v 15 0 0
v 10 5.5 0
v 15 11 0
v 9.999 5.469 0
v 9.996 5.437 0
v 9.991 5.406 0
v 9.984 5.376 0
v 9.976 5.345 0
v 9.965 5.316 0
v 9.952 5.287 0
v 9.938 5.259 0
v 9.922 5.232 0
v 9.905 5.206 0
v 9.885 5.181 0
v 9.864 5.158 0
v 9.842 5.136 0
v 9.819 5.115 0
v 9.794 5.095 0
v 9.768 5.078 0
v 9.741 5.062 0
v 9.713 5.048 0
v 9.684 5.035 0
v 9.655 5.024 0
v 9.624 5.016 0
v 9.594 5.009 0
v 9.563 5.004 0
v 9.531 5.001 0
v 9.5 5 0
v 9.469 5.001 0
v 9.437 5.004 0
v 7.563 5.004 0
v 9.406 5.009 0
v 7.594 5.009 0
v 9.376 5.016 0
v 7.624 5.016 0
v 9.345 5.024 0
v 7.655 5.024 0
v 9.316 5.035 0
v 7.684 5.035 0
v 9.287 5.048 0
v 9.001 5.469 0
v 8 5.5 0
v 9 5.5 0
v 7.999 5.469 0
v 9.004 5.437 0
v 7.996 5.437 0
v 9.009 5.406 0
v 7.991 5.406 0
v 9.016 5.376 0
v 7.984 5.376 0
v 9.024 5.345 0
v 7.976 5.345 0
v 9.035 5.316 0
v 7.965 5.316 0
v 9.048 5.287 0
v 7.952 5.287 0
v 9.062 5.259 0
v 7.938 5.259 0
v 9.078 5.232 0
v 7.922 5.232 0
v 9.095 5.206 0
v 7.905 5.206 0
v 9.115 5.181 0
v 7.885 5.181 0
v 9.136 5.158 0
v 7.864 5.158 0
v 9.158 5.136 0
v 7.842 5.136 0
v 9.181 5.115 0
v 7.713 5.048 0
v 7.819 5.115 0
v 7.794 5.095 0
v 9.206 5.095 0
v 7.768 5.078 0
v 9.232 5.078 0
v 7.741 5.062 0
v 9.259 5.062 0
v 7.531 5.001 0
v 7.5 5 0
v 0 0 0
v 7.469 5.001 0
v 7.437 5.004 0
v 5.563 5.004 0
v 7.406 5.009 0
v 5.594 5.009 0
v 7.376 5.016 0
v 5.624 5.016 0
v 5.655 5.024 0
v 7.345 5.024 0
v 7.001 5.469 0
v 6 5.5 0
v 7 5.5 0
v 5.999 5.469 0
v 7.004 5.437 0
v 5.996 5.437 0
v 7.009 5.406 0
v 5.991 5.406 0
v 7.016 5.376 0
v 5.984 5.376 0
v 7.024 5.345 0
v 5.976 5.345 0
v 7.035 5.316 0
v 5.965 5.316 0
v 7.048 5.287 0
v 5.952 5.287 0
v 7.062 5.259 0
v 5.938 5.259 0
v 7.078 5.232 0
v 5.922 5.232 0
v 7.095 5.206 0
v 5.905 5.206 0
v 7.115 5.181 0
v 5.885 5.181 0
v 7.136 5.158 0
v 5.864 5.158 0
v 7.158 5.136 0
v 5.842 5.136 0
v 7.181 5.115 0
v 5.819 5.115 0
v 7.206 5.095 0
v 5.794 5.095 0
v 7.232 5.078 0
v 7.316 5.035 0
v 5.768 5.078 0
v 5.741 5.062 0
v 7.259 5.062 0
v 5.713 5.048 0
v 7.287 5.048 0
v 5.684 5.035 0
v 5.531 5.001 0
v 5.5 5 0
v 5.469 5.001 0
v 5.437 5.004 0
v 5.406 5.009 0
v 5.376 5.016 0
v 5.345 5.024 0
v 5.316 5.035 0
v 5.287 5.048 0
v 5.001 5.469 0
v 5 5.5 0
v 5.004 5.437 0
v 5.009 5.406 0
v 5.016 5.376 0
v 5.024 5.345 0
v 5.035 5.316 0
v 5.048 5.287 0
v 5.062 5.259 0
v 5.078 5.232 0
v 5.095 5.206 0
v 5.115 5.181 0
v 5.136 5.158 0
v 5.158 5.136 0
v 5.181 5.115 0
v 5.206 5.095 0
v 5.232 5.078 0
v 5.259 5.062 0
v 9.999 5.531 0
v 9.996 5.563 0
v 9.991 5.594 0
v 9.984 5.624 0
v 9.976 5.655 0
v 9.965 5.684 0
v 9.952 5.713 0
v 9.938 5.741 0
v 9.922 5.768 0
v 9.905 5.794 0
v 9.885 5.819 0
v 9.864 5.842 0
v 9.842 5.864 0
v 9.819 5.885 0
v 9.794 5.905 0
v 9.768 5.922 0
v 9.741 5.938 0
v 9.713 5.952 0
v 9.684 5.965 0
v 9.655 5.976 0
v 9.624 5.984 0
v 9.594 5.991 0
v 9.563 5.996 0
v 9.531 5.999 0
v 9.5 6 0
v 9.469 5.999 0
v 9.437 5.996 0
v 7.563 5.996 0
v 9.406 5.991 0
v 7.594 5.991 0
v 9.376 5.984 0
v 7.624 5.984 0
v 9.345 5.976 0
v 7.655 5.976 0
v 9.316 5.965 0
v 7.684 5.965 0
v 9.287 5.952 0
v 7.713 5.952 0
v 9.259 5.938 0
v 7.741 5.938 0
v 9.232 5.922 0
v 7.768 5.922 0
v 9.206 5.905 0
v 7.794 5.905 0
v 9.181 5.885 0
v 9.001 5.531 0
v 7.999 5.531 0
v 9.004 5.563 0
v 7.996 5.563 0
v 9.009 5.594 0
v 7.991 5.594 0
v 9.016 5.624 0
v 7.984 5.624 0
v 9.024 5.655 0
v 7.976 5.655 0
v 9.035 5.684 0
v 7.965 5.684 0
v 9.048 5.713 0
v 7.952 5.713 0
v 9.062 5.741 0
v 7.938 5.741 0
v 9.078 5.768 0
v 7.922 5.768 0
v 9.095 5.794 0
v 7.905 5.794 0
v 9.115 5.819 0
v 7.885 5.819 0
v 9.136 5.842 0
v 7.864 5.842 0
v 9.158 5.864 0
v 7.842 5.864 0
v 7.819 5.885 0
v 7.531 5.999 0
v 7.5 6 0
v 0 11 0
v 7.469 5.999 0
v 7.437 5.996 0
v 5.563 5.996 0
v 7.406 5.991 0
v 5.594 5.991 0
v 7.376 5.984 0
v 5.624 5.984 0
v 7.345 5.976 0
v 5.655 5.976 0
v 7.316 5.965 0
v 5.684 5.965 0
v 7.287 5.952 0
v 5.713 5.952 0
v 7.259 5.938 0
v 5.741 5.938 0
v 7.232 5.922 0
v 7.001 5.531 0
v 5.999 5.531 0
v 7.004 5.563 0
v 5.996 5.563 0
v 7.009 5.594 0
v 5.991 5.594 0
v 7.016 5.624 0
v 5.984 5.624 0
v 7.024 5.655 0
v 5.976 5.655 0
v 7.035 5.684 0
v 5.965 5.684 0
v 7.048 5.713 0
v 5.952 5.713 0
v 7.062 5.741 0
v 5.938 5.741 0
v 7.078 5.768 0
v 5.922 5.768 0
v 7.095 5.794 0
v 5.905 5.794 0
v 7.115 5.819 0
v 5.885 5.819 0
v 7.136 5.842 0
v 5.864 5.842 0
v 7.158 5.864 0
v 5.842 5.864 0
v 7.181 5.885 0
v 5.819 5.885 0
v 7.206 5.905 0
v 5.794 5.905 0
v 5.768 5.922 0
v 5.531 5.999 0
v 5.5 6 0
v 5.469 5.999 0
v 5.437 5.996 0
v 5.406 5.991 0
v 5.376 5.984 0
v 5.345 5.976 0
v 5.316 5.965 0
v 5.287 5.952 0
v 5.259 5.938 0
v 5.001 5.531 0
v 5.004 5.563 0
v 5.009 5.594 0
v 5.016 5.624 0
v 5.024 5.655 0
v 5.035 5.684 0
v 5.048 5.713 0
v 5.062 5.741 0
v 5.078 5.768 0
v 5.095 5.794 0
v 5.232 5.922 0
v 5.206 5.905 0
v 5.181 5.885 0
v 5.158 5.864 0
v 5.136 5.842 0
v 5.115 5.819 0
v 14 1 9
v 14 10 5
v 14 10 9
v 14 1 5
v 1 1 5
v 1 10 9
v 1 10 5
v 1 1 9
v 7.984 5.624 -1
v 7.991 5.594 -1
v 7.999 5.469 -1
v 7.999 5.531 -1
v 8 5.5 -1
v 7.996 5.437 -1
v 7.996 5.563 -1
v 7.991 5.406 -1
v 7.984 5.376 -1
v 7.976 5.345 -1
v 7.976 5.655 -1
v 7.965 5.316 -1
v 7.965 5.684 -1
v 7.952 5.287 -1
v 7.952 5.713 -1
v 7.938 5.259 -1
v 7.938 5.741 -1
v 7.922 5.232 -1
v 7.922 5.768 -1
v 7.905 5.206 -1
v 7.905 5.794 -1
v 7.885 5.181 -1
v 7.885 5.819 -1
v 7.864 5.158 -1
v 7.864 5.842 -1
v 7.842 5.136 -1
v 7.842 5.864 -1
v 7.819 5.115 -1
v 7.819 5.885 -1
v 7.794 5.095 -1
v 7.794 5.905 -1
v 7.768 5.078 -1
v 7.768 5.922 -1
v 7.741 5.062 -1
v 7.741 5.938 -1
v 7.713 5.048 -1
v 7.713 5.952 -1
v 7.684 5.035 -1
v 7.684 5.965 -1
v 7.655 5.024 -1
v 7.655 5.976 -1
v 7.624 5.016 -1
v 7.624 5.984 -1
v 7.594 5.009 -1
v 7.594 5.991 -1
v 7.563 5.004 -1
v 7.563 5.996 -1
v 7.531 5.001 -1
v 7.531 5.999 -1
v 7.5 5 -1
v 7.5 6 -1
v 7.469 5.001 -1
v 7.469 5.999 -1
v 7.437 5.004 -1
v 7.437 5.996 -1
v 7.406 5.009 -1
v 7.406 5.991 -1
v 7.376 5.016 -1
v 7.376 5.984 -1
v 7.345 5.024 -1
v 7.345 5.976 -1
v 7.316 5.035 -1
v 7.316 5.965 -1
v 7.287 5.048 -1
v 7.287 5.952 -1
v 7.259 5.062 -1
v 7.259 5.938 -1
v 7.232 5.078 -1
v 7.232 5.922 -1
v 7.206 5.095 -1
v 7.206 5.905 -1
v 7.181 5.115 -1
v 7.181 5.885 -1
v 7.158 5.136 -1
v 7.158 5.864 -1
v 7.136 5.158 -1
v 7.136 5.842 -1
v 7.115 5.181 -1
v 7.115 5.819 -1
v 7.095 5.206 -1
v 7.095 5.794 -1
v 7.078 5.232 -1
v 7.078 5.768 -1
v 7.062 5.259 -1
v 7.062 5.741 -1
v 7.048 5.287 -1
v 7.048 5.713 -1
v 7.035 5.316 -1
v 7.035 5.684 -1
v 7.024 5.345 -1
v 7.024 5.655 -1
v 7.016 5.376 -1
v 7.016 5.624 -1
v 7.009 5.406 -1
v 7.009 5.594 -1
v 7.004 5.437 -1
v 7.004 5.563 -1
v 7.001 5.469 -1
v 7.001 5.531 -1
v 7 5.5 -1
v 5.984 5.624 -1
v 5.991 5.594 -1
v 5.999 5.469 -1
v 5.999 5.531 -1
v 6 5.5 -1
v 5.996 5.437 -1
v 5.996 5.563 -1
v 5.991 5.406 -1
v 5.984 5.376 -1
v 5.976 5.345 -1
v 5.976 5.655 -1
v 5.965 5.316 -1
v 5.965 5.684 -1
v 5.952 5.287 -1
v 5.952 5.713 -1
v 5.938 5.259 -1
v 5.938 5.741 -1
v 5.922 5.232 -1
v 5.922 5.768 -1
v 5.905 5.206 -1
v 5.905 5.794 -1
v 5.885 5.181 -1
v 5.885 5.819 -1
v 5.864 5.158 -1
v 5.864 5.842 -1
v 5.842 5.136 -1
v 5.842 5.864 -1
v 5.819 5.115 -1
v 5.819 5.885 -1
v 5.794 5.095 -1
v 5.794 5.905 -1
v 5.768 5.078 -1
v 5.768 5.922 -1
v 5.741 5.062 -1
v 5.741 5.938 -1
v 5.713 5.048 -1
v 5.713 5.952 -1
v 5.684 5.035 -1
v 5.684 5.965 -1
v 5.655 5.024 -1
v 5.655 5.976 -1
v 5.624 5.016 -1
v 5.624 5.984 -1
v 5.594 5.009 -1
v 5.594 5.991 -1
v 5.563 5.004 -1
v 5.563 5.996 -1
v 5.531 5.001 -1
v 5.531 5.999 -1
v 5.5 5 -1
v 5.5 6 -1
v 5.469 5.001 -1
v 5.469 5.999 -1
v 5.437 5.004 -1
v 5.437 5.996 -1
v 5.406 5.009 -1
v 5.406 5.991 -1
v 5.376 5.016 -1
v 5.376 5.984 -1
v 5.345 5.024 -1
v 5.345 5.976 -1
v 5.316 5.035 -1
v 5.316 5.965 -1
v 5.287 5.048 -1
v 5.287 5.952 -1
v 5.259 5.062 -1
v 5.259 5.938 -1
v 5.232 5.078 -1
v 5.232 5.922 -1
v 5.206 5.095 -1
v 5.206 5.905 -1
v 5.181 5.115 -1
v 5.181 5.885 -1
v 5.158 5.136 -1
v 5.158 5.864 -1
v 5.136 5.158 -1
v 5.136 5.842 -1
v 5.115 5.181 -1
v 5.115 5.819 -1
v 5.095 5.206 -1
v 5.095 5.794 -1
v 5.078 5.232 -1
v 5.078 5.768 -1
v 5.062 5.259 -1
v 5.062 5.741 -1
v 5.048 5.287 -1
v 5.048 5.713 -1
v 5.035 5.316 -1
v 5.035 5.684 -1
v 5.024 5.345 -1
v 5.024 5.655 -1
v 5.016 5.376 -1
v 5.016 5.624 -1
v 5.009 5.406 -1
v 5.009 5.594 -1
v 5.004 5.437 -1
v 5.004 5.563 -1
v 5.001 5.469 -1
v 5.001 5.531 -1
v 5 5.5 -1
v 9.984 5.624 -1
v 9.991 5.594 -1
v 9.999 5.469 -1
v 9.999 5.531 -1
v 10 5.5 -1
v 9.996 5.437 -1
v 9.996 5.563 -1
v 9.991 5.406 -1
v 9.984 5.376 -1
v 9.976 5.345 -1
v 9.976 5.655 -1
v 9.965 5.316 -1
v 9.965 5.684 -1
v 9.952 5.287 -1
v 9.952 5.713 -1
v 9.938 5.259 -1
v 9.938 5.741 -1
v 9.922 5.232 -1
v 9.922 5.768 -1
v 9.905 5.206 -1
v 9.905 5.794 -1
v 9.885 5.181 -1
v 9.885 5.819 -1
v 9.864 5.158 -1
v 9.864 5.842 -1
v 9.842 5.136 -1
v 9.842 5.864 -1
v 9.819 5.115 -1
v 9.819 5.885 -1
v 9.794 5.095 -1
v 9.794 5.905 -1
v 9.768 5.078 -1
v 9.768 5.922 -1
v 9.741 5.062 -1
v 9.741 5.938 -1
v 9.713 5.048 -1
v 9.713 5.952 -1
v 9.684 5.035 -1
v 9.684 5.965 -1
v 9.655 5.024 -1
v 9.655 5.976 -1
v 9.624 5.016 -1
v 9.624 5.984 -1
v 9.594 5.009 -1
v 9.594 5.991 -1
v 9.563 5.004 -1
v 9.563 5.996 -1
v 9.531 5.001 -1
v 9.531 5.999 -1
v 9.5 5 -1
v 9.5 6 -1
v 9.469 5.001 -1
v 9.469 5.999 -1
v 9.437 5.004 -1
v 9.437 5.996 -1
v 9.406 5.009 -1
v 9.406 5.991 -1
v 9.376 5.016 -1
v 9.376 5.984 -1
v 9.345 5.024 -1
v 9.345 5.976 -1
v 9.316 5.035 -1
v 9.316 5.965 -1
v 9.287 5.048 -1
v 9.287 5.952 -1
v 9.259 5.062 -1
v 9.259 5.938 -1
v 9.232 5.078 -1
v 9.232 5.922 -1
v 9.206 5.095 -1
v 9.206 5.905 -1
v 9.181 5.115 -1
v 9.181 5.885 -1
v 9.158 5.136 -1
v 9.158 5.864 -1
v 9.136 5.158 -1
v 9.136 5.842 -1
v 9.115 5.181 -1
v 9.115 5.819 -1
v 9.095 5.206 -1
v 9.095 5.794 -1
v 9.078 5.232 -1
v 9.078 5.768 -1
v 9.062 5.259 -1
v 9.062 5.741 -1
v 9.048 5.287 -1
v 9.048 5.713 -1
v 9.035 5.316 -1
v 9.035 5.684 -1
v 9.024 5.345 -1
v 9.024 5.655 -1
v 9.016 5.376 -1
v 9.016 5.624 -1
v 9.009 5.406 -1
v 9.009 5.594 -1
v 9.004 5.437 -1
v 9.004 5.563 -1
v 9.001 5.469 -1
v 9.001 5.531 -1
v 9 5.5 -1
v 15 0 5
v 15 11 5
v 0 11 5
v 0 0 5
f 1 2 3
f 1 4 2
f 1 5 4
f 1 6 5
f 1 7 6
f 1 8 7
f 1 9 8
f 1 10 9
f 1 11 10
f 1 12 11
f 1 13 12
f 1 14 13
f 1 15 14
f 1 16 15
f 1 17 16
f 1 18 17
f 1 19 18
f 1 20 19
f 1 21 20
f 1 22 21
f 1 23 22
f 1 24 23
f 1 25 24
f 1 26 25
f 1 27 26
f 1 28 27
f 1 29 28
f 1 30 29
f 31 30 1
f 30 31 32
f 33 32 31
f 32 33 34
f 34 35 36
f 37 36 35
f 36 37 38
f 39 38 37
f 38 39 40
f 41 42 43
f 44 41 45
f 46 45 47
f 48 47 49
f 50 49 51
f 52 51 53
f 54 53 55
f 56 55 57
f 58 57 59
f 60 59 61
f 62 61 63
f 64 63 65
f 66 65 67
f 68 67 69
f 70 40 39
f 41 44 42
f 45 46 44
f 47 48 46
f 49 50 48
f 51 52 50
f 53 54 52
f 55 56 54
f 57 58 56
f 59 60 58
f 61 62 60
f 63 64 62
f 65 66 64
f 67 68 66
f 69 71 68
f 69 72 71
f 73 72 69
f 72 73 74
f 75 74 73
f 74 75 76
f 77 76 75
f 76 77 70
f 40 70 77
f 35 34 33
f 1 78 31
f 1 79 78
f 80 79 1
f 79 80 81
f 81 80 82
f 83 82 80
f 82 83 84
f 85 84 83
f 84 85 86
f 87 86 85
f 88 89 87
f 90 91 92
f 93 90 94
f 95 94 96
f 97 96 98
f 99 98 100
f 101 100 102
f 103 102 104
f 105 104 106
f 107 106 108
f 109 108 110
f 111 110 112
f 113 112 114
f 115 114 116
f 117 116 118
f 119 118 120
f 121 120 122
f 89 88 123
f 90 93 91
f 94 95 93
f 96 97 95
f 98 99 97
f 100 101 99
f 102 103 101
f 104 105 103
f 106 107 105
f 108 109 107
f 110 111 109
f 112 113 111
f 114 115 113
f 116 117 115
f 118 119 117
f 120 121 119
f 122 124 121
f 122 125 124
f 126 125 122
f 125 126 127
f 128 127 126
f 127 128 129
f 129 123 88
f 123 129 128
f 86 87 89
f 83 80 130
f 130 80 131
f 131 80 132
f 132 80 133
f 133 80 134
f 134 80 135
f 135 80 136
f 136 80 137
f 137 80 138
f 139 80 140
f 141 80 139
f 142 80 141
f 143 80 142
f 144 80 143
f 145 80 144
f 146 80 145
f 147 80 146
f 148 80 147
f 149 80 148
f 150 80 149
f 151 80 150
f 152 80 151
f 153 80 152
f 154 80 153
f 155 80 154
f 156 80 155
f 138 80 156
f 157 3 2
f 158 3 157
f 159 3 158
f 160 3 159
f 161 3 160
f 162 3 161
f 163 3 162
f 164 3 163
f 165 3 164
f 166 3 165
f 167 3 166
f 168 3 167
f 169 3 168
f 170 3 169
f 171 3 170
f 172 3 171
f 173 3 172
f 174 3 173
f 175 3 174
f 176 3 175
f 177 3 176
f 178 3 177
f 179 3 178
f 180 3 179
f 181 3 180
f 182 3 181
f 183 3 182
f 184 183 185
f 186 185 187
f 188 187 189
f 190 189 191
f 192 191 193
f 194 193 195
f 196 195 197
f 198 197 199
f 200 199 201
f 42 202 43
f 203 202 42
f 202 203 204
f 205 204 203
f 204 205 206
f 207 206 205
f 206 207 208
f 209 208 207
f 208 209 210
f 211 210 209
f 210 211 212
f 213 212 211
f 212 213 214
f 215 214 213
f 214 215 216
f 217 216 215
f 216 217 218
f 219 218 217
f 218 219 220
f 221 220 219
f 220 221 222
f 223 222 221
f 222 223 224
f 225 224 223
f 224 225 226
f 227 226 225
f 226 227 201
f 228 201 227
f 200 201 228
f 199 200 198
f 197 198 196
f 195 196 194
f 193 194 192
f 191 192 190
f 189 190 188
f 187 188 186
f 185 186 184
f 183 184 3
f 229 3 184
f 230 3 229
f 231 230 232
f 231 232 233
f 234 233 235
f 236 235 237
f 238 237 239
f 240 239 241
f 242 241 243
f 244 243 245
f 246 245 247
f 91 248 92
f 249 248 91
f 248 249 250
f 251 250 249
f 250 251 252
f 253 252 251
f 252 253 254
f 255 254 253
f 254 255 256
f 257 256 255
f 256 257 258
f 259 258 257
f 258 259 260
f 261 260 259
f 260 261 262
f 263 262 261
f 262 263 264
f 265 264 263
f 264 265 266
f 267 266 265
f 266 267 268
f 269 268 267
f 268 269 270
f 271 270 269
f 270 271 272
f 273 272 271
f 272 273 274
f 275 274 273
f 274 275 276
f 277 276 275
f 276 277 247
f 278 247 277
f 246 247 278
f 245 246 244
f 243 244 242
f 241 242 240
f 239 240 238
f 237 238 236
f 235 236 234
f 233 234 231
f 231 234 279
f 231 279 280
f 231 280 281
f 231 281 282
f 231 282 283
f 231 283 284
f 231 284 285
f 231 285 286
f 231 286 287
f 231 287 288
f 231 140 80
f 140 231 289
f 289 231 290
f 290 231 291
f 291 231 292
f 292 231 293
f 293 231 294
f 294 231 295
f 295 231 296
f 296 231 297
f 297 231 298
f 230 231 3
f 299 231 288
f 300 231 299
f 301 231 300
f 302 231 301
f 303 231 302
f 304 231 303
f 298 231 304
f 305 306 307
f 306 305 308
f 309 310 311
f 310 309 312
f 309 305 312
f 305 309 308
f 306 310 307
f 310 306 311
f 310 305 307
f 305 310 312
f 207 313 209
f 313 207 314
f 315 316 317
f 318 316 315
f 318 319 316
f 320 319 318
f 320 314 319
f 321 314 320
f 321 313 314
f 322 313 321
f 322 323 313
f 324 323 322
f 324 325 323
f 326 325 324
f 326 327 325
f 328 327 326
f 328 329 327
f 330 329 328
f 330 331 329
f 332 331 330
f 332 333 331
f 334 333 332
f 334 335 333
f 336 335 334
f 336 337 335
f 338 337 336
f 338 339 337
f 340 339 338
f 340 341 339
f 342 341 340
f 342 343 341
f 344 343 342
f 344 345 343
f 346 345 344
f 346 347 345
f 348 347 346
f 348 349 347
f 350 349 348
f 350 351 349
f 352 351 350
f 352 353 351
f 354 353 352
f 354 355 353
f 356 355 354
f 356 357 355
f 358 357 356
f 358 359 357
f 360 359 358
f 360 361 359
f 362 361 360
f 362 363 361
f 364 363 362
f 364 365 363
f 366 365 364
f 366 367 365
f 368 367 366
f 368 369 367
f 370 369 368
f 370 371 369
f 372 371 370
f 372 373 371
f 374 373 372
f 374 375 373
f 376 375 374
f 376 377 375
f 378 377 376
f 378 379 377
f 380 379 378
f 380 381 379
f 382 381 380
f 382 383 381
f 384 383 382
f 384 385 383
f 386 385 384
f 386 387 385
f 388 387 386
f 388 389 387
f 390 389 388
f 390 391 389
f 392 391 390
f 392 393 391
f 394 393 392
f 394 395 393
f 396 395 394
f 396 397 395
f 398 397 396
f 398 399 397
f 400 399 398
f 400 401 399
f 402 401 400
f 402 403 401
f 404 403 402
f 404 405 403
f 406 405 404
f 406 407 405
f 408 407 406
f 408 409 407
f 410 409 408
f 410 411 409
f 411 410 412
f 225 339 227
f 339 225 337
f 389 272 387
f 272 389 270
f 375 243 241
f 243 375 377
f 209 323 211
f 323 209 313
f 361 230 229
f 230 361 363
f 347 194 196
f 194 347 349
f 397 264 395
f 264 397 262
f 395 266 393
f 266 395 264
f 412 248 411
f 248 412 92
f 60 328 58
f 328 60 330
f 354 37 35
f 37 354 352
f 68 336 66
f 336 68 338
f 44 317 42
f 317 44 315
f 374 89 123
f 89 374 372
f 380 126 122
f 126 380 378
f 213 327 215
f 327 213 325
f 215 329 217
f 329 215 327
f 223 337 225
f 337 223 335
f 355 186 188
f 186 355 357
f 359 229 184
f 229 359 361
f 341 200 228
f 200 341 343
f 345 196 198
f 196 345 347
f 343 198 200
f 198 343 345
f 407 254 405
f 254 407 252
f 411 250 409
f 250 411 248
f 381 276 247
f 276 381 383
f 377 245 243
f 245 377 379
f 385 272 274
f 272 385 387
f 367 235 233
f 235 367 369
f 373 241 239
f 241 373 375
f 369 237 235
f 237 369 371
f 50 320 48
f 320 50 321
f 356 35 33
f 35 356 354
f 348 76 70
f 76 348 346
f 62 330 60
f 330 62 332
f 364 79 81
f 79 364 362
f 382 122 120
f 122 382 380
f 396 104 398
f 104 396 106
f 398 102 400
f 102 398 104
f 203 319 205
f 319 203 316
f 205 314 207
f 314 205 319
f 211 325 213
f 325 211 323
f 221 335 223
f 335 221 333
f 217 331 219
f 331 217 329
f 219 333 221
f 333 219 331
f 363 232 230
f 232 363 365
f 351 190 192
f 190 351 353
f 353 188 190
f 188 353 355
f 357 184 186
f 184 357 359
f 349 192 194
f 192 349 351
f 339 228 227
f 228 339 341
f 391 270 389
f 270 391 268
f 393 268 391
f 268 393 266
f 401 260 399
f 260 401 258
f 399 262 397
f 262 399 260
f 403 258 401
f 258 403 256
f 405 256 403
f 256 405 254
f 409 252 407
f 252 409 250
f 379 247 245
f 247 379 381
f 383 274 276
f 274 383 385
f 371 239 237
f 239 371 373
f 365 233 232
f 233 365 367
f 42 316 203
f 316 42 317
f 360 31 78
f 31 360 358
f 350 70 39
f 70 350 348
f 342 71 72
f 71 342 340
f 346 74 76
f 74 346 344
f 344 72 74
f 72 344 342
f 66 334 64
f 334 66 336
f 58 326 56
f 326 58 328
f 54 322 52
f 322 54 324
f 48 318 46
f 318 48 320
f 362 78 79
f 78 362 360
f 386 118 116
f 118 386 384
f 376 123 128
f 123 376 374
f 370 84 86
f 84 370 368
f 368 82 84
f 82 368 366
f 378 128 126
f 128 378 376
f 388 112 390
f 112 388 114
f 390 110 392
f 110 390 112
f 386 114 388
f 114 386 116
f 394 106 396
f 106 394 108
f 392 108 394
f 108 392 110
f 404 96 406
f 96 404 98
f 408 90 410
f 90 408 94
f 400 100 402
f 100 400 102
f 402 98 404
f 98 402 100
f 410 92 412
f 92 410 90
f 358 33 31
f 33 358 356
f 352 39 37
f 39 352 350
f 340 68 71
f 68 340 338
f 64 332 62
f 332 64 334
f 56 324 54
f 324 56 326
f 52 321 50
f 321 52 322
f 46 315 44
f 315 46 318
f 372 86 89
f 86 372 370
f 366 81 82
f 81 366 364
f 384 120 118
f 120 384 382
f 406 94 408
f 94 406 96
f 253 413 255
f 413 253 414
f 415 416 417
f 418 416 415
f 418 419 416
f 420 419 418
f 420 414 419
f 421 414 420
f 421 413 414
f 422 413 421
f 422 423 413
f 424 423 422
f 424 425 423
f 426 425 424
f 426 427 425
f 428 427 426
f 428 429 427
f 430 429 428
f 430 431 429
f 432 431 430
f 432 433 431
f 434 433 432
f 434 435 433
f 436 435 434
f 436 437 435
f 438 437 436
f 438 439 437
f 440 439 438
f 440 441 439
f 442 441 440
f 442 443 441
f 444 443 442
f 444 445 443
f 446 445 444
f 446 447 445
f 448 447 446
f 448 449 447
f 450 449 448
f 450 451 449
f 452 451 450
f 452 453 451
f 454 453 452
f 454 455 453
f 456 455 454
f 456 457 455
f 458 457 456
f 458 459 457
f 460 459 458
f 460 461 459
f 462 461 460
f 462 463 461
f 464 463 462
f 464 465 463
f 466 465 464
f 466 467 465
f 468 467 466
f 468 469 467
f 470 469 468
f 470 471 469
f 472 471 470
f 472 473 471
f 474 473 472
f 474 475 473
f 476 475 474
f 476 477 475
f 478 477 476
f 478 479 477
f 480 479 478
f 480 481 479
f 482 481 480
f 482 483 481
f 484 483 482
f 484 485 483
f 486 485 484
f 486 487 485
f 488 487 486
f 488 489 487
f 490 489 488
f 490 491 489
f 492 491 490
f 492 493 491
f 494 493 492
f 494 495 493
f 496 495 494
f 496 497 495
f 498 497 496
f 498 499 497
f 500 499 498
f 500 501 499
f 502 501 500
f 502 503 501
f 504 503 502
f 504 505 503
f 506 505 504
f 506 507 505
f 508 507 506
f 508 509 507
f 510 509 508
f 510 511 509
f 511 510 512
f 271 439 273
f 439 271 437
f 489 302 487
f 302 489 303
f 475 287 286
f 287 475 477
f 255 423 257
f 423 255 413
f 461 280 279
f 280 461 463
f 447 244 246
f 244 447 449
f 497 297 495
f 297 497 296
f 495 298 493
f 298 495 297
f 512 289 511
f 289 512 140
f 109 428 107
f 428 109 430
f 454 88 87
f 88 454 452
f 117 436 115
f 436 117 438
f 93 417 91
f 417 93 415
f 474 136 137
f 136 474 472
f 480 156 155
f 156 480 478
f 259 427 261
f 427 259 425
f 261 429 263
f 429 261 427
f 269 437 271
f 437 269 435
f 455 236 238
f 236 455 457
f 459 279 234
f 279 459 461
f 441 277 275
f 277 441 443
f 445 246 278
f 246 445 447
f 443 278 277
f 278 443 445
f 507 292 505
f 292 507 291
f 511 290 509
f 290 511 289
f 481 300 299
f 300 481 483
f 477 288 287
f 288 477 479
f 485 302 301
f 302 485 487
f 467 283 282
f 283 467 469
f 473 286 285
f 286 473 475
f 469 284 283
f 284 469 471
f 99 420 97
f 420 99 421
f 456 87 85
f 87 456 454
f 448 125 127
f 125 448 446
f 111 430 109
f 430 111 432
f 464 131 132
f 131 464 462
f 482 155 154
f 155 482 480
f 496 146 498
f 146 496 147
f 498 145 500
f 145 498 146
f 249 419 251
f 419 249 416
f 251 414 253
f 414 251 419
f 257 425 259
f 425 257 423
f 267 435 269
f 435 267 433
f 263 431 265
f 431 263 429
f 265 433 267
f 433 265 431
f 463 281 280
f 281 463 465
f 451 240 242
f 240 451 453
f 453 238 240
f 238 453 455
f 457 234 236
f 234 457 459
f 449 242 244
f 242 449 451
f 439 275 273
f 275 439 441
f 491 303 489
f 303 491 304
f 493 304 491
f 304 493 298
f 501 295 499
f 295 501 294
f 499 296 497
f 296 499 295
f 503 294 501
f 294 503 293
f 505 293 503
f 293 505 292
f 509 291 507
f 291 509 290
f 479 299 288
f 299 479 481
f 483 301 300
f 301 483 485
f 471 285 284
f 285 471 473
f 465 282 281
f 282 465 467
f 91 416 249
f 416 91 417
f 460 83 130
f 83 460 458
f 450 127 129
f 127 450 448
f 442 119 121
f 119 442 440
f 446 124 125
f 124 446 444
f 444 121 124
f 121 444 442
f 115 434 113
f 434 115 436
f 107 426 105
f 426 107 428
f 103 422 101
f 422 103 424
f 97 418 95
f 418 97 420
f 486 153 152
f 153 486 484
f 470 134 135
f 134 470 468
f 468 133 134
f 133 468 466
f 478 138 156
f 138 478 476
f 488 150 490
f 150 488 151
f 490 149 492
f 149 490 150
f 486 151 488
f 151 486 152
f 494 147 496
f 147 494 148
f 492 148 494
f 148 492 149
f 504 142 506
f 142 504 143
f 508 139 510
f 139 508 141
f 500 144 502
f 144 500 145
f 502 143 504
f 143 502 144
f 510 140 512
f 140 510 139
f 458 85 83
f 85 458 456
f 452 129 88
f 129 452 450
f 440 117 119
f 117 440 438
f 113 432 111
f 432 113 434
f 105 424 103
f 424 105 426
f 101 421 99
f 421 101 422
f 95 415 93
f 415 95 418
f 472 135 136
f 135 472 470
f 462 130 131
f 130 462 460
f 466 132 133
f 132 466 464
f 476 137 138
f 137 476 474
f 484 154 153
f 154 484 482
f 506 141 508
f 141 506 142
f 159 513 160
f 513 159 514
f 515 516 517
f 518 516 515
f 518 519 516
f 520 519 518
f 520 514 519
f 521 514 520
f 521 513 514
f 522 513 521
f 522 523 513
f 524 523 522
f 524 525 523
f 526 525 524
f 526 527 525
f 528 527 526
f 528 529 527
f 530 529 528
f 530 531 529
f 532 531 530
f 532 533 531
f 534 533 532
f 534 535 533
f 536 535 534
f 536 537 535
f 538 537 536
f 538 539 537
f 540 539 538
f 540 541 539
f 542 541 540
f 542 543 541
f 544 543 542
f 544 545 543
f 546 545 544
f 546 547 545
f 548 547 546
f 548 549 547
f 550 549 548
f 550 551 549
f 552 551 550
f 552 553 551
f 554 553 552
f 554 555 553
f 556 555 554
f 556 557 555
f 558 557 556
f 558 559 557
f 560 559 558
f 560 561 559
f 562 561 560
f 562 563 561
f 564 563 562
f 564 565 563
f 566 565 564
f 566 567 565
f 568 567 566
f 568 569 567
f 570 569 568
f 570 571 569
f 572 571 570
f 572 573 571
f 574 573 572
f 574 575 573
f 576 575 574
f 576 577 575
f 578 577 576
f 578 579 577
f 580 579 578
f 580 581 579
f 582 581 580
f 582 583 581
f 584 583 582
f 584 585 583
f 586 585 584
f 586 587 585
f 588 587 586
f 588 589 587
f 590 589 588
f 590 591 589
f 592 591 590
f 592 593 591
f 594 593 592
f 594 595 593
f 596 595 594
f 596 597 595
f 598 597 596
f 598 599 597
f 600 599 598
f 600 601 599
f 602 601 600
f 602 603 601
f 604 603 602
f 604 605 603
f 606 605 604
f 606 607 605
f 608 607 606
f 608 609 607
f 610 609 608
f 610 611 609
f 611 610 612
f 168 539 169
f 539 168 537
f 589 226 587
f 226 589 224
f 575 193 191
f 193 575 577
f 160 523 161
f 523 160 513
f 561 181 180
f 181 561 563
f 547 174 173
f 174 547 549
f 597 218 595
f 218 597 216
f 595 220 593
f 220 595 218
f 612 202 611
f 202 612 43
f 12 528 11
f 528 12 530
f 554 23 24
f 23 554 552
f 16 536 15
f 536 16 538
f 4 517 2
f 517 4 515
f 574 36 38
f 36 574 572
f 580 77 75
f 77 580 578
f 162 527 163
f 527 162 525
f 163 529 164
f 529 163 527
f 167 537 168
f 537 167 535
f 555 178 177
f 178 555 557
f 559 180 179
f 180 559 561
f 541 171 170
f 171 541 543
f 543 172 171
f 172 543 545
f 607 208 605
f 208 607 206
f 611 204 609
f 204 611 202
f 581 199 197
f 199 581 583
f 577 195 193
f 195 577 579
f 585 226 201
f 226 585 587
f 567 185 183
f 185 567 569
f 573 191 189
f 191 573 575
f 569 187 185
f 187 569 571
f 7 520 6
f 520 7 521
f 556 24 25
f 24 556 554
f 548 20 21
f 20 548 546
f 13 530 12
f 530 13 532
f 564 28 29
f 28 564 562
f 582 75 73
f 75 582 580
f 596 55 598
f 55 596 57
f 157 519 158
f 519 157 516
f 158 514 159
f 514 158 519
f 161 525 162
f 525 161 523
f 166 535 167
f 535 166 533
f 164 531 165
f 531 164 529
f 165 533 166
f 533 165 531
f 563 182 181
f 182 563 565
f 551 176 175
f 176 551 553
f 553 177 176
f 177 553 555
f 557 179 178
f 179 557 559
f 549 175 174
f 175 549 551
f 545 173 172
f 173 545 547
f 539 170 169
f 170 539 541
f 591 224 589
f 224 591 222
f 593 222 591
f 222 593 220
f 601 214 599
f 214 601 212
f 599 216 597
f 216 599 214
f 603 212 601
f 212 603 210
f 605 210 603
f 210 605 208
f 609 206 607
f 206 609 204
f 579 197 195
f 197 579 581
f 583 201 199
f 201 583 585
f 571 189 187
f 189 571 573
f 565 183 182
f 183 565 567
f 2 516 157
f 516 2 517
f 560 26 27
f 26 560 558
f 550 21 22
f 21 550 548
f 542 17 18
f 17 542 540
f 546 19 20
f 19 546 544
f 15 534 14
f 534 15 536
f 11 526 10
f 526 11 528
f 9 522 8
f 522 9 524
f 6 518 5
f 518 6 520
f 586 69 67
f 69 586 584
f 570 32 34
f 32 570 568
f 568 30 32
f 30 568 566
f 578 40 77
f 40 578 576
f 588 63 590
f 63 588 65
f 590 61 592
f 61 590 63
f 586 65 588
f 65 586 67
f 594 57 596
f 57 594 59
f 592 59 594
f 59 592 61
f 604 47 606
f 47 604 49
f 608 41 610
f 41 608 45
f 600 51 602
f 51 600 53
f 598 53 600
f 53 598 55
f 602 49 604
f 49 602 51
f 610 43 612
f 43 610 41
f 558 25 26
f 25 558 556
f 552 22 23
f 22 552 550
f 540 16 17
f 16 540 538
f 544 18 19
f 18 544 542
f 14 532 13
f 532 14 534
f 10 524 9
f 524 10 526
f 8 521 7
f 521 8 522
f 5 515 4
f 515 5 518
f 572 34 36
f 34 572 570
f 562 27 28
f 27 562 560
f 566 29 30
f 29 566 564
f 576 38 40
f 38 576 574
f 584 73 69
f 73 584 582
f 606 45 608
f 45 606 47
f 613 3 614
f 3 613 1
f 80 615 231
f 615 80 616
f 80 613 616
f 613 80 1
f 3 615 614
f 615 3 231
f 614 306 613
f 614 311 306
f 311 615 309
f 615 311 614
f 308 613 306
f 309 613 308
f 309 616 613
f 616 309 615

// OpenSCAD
$ht=5;

color("yellow")
  //translate([0, 0, 0])
    //difference() {
      linear_extrude(height=$ht) translate([0,0,0]) square([15,11], center=false);
   difference() {
       union() {
        linear_extrude(height=$ht+4) translate([1,1,8]) square([13,9], center=false);
        translate([7.5,5.5,-1]) cylinder(h = 4, r=0.5, center = false, $fn=100);
        translate([5.5,5.5,-1]) cylinder(h = 4, r=0.5, center = false, $fn=100);
        translate([9.5,5.5,-1]) cylinder(h = 4, r=0.5, center = false, $fn=100);
 //       translate(0,0,-1)
 //       linear_extrude(height=9)
 //         square([13,9], center=true)
      }
      //linear_extrude(height=10) translate([0,0,0]) square([15,11], center=false);
    }
            
            
            
            
